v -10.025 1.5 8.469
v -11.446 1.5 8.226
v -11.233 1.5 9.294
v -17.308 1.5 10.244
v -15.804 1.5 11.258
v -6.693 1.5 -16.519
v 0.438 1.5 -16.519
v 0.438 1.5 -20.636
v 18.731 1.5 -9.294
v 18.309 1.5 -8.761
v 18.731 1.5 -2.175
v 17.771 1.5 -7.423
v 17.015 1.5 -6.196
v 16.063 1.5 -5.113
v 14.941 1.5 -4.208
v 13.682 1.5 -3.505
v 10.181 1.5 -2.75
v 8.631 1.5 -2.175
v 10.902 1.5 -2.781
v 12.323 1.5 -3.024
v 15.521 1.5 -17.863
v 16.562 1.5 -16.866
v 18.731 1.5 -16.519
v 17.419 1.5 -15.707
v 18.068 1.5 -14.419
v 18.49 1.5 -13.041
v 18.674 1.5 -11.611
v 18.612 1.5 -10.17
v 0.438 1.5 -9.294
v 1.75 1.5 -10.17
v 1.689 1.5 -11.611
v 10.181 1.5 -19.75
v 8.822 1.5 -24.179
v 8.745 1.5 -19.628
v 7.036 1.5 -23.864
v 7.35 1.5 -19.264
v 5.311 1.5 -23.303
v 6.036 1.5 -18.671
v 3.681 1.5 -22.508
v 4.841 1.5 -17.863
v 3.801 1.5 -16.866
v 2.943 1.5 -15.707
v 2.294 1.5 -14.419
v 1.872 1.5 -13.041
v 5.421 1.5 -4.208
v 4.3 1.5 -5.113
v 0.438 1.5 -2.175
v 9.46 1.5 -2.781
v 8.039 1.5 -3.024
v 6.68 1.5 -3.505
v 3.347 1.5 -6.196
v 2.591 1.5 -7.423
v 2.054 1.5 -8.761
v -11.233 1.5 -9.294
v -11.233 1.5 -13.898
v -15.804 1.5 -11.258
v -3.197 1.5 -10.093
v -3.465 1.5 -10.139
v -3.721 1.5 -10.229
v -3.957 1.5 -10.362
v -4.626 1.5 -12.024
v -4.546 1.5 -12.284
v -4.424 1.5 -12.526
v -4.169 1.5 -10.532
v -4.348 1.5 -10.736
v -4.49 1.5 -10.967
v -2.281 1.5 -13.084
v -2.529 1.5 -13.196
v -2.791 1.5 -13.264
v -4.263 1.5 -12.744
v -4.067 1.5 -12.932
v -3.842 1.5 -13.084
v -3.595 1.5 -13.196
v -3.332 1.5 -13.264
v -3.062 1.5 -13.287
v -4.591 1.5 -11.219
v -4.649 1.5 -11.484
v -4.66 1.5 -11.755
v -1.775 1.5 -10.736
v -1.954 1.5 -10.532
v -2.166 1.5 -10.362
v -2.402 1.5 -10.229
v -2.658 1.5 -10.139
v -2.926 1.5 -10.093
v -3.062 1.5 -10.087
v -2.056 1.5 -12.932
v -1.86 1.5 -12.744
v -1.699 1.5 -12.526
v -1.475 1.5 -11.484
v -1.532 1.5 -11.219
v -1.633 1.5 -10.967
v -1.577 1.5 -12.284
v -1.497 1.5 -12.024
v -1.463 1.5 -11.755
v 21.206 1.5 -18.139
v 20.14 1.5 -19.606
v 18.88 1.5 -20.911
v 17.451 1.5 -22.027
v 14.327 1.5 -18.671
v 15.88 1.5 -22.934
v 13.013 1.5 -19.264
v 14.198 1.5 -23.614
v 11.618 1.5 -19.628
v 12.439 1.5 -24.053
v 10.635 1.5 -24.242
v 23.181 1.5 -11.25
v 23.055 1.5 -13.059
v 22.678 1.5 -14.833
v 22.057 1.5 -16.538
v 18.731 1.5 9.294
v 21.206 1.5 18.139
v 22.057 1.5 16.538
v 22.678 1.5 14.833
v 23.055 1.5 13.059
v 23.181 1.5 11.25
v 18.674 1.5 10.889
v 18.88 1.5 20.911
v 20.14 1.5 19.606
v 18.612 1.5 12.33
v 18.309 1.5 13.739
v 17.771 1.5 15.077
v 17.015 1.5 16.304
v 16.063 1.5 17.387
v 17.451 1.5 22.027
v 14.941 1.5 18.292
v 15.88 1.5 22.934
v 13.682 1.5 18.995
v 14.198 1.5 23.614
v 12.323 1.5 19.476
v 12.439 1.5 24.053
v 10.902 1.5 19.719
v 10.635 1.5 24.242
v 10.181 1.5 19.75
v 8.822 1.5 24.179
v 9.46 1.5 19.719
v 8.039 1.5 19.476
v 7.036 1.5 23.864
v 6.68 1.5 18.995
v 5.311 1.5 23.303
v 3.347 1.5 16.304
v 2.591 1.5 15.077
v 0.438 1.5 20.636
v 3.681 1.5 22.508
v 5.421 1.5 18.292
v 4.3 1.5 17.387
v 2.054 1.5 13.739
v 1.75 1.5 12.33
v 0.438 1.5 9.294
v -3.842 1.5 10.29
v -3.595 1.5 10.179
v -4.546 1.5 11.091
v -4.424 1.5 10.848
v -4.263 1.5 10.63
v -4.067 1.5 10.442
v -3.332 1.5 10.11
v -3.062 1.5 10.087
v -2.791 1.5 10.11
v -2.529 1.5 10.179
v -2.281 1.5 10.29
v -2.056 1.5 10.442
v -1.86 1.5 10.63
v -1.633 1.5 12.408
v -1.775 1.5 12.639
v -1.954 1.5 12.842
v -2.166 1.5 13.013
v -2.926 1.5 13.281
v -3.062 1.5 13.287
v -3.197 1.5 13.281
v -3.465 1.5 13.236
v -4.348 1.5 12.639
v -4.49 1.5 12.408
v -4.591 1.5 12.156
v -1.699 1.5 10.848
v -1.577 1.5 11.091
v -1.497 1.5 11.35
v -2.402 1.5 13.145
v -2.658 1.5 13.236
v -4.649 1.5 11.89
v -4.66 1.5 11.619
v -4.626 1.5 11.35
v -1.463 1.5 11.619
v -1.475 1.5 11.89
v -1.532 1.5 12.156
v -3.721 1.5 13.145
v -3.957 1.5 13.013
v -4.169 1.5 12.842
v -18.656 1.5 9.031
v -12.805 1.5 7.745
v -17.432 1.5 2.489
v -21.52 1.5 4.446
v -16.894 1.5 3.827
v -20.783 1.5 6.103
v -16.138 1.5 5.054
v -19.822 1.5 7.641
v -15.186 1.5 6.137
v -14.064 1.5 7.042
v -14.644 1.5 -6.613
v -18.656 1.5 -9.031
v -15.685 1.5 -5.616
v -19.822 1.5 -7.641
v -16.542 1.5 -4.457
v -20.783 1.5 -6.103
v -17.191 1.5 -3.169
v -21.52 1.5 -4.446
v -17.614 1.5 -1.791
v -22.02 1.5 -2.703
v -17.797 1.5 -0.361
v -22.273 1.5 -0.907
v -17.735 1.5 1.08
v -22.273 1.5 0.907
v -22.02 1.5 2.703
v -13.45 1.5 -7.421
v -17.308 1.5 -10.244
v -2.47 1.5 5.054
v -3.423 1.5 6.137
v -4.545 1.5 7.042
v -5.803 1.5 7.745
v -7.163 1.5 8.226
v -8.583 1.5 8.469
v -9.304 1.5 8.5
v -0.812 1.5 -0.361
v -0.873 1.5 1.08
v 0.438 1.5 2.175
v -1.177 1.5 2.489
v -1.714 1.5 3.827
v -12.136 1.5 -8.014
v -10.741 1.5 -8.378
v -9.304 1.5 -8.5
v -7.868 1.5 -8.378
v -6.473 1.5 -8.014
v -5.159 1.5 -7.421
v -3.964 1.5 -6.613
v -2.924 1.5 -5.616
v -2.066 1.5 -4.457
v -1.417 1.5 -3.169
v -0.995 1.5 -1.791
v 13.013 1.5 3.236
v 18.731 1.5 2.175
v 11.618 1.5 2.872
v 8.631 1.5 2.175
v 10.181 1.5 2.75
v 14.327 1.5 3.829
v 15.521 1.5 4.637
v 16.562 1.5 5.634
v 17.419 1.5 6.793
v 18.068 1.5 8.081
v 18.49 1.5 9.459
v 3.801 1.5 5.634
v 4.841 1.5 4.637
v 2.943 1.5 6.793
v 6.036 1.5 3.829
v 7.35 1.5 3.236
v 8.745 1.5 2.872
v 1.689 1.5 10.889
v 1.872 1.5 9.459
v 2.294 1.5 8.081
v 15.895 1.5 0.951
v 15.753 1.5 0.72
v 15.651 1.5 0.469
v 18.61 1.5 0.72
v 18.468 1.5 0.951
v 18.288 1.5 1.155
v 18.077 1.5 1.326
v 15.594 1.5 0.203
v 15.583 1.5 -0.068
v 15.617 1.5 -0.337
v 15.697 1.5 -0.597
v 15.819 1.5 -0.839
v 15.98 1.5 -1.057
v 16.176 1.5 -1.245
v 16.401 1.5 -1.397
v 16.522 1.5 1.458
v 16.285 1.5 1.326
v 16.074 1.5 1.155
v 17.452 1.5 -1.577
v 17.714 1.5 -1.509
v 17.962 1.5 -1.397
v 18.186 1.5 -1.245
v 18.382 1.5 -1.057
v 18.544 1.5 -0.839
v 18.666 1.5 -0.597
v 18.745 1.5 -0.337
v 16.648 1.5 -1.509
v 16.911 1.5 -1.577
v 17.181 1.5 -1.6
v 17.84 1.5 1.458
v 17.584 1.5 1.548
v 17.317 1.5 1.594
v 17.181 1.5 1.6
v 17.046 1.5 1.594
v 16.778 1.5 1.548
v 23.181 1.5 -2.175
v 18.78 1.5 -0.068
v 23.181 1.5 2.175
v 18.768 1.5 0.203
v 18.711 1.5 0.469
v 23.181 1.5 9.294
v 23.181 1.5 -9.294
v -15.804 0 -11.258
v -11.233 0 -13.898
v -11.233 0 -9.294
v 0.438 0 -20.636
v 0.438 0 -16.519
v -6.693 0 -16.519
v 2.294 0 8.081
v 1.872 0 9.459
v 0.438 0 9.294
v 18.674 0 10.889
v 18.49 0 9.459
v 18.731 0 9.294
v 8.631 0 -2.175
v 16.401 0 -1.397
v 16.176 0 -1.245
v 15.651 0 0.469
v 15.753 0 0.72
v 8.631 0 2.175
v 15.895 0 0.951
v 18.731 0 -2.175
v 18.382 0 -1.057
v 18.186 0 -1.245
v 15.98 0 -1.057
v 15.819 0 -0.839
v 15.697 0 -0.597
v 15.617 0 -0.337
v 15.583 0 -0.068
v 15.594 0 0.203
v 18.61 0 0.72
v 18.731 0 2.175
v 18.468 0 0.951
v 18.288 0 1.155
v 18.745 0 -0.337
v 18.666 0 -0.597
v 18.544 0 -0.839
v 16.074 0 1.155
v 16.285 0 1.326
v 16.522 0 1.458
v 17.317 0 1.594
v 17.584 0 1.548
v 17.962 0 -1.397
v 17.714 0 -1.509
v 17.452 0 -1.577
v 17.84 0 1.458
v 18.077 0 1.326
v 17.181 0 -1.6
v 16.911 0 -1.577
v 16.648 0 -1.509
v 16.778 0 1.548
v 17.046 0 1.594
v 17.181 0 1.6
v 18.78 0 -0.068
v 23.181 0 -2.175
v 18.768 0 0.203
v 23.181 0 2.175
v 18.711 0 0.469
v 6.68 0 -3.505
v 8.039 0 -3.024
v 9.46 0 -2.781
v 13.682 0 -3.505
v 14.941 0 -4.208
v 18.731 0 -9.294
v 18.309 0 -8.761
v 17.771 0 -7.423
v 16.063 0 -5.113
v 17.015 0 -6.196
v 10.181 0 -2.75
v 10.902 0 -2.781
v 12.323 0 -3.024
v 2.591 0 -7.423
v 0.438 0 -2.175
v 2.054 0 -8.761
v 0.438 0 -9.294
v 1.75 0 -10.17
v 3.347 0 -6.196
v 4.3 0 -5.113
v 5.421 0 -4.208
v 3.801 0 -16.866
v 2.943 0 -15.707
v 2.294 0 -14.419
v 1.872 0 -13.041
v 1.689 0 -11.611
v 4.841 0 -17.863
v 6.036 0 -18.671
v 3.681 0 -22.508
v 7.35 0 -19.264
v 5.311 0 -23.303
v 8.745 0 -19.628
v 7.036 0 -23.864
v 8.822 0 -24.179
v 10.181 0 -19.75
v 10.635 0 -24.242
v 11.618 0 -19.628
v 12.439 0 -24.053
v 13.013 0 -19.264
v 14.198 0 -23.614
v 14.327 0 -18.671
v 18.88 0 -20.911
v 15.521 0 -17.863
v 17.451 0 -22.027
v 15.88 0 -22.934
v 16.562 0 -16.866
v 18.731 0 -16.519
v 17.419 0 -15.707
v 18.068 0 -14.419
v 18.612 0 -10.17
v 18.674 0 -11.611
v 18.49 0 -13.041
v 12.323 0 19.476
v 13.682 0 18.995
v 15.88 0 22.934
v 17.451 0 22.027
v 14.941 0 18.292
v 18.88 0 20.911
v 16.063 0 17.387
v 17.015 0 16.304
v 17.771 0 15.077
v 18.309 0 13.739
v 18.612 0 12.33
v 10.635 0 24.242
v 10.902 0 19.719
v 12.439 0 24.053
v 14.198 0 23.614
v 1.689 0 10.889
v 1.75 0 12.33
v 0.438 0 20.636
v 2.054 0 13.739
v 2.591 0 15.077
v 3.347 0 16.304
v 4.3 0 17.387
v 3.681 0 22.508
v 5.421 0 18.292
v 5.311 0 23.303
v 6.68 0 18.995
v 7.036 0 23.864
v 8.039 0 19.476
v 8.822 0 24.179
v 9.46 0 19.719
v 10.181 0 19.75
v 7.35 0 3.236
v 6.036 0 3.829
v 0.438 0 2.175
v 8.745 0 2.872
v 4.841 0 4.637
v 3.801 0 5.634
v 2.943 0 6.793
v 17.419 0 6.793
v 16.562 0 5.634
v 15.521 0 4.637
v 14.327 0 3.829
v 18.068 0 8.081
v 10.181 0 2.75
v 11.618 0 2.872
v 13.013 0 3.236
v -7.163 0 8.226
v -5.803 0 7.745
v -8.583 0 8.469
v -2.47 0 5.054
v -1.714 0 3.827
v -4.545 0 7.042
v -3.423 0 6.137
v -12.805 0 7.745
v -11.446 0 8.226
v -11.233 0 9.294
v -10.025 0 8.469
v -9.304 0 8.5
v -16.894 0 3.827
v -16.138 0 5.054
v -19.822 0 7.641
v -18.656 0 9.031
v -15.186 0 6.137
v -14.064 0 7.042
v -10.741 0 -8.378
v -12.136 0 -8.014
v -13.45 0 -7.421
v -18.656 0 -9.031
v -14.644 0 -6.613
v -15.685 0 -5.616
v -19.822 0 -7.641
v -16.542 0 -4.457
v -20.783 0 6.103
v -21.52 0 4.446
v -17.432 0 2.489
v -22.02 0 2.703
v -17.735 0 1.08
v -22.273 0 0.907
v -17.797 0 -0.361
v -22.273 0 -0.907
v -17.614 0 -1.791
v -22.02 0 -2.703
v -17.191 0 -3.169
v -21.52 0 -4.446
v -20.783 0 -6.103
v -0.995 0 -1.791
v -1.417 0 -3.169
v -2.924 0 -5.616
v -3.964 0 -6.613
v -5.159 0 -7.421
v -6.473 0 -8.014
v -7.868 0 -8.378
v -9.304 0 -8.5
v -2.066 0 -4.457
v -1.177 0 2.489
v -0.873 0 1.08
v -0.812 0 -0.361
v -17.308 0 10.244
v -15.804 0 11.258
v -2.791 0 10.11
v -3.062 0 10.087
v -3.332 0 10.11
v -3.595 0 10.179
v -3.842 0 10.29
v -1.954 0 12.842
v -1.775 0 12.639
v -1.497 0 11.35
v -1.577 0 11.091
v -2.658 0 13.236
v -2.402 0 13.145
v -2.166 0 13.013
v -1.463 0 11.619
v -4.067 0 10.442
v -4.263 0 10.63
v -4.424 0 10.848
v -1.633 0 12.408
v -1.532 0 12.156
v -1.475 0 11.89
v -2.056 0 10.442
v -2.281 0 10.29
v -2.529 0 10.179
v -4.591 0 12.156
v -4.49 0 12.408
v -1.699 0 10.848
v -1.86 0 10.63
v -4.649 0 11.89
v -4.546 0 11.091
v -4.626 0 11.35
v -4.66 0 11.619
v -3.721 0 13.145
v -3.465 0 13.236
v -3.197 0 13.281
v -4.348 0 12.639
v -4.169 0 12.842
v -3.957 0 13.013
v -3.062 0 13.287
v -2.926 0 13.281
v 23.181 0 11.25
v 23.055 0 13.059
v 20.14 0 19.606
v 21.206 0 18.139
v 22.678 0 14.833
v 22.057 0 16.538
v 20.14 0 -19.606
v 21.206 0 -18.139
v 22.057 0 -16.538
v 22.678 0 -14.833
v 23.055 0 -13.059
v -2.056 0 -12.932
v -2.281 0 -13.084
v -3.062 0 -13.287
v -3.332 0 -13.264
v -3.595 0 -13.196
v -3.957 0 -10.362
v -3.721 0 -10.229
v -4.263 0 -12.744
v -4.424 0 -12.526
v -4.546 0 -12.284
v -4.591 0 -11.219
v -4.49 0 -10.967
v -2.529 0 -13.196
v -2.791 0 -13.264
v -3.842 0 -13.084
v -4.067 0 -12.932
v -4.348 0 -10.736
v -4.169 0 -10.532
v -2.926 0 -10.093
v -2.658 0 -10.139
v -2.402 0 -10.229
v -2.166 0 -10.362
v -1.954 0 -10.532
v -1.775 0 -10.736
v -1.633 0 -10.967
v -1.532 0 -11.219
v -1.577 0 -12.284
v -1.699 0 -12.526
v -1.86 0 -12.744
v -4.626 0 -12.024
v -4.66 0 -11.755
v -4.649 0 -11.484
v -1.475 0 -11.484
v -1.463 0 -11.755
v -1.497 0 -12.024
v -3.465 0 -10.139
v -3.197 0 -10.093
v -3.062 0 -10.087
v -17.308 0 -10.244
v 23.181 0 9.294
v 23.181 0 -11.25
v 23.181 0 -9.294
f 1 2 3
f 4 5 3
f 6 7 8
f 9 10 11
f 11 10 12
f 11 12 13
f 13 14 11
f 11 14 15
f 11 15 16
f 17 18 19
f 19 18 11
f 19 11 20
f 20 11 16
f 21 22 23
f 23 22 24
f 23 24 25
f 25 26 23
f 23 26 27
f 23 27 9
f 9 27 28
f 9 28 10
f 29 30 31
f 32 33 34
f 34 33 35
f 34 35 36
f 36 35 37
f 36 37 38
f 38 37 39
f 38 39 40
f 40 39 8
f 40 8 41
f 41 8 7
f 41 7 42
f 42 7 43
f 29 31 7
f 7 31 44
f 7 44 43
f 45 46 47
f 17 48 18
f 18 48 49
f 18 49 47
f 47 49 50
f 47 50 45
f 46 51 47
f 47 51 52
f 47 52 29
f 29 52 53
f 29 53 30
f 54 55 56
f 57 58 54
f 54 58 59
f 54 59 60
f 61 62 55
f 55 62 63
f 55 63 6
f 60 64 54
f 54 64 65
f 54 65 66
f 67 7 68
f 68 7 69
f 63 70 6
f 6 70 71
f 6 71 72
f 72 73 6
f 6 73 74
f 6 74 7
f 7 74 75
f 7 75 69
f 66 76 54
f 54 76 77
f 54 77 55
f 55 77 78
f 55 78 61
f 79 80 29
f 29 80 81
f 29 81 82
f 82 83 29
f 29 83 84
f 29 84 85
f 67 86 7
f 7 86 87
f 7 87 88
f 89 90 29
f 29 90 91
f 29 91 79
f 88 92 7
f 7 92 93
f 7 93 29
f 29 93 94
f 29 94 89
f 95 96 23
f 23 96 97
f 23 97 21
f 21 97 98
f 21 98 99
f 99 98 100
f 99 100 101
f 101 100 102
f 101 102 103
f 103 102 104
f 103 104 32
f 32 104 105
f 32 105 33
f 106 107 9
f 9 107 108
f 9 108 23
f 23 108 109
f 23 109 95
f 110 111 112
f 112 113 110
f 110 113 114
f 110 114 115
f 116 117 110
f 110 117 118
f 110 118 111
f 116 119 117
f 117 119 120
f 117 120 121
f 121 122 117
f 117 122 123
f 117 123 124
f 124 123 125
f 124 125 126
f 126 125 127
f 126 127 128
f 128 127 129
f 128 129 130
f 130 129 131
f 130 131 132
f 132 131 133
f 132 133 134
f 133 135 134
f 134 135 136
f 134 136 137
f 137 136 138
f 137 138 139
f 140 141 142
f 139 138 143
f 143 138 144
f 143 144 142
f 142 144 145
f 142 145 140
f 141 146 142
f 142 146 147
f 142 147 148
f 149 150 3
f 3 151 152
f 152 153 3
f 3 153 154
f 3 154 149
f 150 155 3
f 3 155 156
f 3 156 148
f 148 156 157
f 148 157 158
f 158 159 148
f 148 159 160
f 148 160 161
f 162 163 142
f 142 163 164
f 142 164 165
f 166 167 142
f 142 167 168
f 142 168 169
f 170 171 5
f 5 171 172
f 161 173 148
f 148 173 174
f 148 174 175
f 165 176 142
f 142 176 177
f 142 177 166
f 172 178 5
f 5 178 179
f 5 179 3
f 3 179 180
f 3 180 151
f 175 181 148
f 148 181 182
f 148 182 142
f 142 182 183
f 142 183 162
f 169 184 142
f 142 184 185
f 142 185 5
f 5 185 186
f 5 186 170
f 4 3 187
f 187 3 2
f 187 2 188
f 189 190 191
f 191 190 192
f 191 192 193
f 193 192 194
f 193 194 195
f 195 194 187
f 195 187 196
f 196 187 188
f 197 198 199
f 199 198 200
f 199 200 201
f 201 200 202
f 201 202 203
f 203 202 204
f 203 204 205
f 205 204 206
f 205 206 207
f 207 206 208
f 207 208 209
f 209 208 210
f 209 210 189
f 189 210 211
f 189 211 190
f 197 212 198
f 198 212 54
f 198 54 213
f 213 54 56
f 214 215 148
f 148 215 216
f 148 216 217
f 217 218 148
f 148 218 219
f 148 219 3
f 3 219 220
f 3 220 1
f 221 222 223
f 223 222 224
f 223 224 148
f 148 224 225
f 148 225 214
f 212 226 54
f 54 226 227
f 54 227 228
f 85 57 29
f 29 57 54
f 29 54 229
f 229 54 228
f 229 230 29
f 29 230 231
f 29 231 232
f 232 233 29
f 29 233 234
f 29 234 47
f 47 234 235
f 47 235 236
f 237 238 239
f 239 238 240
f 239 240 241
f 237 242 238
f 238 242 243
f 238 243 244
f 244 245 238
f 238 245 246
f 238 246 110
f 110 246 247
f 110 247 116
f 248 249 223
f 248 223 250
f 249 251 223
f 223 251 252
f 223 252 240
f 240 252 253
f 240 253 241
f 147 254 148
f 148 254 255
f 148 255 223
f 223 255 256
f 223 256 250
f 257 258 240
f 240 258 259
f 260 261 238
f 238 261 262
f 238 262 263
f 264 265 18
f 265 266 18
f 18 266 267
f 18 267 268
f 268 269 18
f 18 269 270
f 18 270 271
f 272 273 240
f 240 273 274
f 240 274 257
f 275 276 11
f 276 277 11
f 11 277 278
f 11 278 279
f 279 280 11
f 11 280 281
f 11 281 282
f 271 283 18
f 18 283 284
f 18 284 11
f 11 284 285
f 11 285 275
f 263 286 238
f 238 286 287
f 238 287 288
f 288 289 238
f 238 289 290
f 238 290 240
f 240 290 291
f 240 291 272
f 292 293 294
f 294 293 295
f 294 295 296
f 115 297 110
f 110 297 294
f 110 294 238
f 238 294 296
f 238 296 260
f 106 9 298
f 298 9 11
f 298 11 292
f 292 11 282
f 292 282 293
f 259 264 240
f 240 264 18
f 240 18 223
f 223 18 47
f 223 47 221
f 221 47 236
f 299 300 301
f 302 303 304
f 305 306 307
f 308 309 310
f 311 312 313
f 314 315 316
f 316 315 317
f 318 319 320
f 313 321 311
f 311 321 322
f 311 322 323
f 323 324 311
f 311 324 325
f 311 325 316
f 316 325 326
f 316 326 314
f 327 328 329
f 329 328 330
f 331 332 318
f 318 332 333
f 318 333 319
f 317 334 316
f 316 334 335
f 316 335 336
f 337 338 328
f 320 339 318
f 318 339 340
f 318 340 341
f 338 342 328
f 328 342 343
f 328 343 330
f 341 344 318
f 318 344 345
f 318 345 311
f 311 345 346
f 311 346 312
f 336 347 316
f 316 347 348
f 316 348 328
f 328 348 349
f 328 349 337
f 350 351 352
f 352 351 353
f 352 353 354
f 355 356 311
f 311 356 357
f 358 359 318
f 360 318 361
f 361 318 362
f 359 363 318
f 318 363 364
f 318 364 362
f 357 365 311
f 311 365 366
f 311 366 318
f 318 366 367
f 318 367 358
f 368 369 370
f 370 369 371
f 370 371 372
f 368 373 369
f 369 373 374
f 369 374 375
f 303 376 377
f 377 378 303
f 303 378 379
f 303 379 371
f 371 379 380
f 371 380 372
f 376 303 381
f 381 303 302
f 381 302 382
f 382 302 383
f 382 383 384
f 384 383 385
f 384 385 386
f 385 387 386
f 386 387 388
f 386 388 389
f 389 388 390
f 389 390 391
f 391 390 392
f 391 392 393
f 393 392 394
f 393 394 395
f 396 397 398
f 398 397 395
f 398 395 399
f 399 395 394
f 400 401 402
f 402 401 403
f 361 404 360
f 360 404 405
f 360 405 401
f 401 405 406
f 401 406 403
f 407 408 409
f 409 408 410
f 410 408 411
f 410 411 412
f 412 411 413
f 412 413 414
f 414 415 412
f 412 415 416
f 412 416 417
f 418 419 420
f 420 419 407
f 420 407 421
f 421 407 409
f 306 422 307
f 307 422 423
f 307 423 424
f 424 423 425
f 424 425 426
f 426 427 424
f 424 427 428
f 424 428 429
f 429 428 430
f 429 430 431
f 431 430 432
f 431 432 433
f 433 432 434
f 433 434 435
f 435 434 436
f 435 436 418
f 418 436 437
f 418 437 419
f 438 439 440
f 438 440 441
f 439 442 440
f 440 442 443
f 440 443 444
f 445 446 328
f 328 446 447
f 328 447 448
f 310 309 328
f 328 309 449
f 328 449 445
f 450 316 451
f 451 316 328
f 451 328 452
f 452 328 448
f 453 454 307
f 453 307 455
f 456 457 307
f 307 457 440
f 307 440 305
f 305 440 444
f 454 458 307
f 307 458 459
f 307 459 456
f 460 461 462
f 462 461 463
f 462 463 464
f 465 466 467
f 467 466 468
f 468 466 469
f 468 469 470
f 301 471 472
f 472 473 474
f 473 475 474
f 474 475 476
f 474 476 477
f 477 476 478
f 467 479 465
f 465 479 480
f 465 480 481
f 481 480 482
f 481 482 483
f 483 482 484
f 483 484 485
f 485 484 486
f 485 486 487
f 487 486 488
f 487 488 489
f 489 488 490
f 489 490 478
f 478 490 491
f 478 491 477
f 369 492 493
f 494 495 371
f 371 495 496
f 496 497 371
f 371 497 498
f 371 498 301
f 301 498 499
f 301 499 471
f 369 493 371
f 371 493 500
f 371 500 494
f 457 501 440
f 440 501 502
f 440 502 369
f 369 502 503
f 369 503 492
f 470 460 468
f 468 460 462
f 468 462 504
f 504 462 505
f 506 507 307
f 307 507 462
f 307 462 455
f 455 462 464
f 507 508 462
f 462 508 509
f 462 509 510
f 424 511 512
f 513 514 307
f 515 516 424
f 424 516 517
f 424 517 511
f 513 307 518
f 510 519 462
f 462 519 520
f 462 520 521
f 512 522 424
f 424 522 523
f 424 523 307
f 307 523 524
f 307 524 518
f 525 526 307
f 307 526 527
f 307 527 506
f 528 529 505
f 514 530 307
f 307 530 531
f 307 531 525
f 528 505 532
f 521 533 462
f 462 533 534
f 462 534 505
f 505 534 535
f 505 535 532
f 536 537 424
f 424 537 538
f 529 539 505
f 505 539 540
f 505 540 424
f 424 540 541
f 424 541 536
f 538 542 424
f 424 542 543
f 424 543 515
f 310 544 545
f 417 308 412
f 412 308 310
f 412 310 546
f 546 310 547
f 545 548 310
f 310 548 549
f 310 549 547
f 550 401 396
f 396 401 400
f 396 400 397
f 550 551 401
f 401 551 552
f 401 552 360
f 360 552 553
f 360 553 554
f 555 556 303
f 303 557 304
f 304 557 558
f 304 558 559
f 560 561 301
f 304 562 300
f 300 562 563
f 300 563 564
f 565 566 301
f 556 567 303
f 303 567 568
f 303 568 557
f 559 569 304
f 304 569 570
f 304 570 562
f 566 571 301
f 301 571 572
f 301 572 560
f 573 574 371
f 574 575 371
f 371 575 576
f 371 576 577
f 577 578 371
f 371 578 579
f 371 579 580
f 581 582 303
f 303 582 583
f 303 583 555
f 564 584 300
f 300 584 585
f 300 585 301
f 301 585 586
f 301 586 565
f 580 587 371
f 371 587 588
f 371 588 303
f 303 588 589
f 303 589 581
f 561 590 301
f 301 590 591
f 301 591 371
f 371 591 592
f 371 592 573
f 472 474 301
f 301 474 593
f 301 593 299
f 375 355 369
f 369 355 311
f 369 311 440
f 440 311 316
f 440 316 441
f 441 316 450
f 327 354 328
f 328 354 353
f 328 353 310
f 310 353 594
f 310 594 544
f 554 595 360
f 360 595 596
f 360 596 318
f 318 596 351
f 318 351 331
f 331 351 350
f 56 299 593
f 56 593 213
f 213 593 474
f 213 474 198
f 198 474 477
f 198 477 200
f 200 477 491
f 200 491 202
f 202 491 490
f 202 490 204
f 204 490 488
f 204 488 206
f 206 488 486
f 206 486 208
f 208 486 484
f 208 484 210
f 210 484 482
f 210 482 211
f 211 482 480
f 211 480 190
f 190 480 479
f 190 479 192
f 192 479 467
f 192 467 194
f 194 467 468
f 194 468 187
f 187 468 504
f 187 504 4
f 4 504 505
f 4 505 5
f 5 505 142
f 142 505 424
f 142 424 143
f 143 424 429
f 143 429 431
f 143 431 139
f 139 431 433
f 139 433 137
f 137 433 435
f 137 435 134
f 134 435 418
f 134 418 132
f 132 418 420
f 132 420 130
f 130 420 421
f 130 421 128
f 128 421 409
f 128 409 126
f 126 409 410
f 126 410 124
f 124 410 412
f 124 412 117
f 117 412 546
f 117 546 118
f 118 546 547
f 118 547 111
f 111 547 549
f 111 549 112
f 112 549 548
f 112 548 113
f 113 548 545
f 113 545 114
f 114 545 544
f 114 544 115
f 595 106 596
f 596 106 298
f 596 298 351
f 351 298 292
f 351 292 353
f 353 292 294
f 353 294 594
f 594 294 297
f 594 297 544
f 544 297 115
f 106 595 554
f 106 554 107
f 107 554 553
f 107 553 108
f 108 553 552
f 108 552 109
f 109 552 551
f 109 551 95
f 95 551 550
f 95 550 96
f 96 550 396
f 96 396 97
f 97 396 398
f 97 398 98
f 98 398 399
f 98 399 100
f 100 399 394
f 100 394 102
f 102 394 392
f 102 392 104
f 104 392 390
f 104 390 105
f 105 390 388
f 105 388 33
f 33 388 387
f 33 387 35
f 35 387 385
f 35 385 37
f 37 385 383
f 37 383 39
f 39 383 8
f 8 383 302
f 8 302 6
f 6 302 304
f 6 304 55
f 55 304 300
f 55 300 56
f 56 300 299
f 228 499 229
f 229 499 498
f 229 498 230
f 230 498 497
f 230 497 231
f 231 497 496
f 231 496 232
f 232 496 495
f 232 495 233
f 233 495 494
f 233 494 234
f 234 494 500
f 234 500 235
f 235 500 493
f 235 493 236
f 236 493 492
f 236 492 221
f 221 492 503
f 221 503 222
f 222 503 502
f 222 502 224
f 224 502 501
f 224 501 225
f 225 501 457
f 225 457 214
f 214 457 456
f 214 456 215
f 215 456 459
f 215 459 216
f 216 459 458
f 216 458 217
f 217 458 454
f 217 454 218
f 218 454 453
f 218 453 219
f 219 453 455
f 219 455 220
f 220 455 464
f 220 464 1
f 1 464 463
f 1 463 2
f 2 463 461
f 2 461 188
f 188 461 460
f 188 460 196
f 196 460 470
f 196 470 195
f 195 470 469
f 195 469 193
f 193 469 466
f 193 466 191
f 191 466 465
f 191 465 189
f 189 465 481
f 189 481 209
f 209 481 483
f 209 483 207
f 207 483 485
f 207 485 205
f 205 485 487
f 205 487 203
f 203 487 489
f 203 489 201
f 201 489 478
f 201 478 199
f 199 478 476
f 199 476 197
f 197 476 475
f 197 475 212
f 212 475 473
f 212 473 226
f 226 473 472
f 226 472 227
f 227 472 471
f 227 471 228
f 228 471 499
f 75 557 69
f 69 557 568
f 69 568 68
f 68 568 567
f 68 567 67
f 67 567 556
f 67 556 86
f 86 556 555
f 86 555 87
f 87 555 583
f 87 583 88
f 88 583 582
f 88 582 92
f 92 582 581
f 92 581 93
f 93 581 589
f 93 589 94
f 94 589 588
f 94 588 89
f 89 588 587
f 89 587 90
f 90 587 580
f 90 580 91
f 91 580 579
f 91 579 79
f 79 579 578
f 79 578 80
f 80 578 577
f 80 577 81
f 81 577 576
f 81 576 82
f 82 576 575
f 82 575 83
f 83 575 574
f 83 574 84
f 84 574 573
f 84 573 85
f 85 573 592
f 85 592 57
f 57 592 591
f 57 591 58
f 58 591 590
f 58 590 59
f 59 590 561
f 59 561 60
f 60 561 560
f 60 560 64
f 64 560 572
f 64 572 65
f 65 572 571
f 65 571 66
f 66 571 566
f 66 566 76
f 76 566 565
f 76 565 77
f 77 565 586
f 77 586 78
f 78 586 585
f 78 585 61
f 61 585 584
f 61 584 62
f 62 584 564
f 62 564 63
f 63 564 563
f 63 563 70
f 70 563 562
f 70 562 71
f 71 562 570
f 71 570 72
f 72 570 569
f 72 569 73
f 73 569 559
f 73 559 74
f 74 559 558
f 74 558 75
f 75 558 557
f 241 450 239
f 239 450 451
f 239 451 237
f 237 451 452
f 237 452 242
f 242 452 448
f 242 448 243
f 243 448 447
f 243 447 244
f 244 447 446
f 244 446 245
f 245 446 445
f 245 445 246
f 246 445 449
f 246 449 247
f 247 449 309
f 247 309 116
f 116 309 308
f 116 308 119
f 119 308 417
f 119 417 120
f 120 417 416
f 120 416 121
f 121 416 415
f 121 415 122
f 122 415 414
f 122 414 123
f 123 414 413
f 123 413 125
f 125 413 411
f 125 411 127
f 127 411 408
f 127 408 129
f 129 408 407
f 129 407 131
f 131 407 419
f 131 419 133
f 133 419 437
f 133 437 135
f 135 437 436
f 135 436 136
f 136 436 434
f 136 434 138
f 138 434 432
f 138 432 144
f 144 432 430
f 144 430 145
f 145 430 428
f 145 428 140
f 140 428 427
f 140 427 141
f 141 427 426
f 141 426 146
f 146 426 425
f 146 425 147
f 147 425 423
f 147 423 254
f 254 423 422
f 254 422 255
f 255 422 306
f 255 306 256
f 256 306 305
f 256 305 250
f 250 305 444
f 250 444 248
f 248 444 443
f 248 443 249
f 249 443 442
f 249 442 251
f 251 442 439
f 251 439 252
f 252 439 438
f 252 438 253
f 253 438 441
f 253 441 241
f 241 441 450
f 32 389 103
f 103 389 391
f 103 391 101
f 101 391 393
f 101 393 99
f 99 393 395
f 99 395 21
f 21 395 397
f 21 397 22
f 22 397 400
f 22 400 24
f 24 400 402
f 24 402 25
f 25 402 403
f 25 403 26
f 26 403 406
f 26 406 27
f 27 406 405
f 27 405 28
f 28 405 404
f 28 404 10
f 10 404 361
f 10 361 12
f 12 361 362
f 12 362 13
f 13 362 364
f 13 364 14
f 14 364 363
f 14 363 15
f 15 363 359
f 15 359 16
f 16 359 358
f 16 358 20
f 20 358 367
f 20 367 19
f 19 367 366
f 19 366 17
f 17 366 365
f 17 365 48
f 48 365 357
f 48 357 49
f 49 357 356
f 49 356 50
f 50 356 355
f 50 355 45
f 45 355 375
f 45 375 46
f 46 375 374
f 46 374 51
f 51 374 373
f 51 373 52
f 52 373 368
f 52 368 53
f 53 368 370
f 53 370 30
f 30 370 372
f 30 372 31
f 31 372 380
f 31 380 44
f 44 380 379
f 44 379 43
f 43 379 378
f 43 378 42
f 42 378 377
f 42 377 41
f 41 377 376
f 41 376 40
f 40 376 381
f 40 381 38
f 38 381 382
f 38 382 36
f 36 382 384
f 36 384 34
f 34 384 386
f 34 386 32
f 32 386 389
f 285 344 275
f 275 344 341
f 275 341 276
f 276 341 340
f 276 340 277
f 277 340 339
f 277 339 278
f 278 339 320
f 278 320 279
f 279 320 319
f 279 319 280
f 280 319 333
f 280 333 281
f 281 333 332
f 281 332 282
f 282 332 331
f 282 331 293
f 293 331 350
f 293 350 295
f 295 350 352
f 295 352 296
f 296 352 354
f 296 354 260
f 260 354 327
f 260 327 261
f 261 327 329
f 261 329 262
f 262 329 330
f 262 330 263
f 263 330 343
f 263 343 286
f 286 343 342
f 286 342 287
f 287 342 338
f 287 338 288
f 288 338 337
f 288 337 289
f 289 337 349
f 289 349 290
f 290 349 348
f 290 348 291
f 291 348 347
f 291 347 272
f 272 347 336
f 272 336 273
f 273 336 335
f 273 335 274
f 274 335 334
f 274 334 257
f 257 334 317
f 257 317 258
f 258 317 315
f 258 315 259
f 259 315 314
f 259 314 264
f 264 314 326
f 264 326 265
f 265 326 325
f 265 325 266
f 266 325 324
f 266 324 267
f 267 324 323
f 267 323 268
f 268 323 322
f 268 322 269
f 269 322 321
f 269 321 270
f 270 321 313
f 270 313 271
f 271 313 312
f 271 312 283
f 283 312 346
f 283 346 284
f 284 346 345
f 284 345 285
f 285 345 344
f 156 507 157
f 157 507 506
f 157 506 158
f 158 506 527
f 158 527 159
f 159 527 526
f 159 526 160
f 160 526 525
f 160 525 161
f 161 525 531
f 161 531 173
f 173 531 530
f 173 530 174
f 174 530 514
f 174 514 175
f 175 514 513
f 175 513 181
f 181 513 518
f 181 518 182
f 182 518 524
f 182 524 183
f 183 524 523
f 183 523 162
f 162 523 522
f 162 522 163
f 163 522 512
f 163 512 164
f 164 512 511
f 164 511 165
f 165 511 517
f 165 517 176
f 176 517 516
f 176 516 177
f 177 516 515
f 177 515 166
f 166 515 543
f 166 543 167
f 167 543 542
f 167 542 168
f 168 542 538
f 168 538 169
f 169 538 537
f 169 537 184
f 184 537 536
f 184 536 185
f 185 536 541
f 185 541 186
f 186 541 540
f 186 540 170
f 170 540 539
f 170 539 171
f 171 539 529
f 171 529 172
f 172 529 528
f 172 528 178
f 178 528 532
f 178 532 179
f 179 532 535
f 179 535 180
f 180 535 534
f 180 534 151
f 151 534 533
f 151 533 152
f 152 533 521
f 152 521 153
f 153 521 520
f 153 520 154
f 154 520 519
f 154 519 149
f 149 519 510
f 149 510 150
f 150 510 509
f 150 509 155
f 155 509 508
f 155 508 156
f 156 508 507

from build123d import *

# Parameters (mm, degrees)
SKETCH1_R           = 8.5
SKETCH1_R_2         = 1.6
SKETCH1_R_3         = 1.599999998
BOSS_EXTRUDE1_DEPTH = 1.5


with BuildPart() as part:
    # Sketch1 → Boss-Extrude1 (new body)
    with BuildSketch(Plane(origin=(0, 0, 0), x_dir=(1, 0, 0), z_dir=(0, 1, 0))):
        with BuildLine():
            Line((-15.804326324, -11.258330249), (3.681245261, -22.508330249))
            ThreePointArc((3.681245261, -22.508330249), (16.681245261, -22.508330249), (23.181245261, -11.25))
            Line((23.181245261, -11.25), (23.181245261, 11.25))
            ThreePointArc((23.181245261, 11.25), (16.681245261, 22.508330249), (3.681245261, 22.508330249))
            Line((3.681245261, 22.508330249), (-15.804326324, 11.258330249))
            ThreePointArc((-15.804326324, 11.258330249), (-22.304326324, 0), (-15.804326324, -11.258330249))
        make_face()
        with Locations((-9.304326324, 0)):
            Circle(SKETCH1_R, mode=Mode.SUBTRACT)
        with Locations((-3.06154027, 11.687177858)):
            Circle(SKETCH1_R_2, mode=Mode.SUBTRACT)
        with Locations((17.181245264, 0)):
            Circle(SKETCH1_R_3, mode=Mode.SUBTRACT)
        with Locations((10.181245261, -11.25)):
            Circle(SKETCH1_R, mode=Mode.SUBTRACT)
        with Locations((10.181245261, 11.25)):
            Circle(SKETCH1_R, mode=Mode.SUBTRACT)
        with Locations((-3.06154027, -11.687177373)):
            Circle(SKETCH1_R_2, mode=Mode.SUBTRACT)
    extrude(amount=BOSS_EXTRUDE1_DEPTH)


solid = part.part
